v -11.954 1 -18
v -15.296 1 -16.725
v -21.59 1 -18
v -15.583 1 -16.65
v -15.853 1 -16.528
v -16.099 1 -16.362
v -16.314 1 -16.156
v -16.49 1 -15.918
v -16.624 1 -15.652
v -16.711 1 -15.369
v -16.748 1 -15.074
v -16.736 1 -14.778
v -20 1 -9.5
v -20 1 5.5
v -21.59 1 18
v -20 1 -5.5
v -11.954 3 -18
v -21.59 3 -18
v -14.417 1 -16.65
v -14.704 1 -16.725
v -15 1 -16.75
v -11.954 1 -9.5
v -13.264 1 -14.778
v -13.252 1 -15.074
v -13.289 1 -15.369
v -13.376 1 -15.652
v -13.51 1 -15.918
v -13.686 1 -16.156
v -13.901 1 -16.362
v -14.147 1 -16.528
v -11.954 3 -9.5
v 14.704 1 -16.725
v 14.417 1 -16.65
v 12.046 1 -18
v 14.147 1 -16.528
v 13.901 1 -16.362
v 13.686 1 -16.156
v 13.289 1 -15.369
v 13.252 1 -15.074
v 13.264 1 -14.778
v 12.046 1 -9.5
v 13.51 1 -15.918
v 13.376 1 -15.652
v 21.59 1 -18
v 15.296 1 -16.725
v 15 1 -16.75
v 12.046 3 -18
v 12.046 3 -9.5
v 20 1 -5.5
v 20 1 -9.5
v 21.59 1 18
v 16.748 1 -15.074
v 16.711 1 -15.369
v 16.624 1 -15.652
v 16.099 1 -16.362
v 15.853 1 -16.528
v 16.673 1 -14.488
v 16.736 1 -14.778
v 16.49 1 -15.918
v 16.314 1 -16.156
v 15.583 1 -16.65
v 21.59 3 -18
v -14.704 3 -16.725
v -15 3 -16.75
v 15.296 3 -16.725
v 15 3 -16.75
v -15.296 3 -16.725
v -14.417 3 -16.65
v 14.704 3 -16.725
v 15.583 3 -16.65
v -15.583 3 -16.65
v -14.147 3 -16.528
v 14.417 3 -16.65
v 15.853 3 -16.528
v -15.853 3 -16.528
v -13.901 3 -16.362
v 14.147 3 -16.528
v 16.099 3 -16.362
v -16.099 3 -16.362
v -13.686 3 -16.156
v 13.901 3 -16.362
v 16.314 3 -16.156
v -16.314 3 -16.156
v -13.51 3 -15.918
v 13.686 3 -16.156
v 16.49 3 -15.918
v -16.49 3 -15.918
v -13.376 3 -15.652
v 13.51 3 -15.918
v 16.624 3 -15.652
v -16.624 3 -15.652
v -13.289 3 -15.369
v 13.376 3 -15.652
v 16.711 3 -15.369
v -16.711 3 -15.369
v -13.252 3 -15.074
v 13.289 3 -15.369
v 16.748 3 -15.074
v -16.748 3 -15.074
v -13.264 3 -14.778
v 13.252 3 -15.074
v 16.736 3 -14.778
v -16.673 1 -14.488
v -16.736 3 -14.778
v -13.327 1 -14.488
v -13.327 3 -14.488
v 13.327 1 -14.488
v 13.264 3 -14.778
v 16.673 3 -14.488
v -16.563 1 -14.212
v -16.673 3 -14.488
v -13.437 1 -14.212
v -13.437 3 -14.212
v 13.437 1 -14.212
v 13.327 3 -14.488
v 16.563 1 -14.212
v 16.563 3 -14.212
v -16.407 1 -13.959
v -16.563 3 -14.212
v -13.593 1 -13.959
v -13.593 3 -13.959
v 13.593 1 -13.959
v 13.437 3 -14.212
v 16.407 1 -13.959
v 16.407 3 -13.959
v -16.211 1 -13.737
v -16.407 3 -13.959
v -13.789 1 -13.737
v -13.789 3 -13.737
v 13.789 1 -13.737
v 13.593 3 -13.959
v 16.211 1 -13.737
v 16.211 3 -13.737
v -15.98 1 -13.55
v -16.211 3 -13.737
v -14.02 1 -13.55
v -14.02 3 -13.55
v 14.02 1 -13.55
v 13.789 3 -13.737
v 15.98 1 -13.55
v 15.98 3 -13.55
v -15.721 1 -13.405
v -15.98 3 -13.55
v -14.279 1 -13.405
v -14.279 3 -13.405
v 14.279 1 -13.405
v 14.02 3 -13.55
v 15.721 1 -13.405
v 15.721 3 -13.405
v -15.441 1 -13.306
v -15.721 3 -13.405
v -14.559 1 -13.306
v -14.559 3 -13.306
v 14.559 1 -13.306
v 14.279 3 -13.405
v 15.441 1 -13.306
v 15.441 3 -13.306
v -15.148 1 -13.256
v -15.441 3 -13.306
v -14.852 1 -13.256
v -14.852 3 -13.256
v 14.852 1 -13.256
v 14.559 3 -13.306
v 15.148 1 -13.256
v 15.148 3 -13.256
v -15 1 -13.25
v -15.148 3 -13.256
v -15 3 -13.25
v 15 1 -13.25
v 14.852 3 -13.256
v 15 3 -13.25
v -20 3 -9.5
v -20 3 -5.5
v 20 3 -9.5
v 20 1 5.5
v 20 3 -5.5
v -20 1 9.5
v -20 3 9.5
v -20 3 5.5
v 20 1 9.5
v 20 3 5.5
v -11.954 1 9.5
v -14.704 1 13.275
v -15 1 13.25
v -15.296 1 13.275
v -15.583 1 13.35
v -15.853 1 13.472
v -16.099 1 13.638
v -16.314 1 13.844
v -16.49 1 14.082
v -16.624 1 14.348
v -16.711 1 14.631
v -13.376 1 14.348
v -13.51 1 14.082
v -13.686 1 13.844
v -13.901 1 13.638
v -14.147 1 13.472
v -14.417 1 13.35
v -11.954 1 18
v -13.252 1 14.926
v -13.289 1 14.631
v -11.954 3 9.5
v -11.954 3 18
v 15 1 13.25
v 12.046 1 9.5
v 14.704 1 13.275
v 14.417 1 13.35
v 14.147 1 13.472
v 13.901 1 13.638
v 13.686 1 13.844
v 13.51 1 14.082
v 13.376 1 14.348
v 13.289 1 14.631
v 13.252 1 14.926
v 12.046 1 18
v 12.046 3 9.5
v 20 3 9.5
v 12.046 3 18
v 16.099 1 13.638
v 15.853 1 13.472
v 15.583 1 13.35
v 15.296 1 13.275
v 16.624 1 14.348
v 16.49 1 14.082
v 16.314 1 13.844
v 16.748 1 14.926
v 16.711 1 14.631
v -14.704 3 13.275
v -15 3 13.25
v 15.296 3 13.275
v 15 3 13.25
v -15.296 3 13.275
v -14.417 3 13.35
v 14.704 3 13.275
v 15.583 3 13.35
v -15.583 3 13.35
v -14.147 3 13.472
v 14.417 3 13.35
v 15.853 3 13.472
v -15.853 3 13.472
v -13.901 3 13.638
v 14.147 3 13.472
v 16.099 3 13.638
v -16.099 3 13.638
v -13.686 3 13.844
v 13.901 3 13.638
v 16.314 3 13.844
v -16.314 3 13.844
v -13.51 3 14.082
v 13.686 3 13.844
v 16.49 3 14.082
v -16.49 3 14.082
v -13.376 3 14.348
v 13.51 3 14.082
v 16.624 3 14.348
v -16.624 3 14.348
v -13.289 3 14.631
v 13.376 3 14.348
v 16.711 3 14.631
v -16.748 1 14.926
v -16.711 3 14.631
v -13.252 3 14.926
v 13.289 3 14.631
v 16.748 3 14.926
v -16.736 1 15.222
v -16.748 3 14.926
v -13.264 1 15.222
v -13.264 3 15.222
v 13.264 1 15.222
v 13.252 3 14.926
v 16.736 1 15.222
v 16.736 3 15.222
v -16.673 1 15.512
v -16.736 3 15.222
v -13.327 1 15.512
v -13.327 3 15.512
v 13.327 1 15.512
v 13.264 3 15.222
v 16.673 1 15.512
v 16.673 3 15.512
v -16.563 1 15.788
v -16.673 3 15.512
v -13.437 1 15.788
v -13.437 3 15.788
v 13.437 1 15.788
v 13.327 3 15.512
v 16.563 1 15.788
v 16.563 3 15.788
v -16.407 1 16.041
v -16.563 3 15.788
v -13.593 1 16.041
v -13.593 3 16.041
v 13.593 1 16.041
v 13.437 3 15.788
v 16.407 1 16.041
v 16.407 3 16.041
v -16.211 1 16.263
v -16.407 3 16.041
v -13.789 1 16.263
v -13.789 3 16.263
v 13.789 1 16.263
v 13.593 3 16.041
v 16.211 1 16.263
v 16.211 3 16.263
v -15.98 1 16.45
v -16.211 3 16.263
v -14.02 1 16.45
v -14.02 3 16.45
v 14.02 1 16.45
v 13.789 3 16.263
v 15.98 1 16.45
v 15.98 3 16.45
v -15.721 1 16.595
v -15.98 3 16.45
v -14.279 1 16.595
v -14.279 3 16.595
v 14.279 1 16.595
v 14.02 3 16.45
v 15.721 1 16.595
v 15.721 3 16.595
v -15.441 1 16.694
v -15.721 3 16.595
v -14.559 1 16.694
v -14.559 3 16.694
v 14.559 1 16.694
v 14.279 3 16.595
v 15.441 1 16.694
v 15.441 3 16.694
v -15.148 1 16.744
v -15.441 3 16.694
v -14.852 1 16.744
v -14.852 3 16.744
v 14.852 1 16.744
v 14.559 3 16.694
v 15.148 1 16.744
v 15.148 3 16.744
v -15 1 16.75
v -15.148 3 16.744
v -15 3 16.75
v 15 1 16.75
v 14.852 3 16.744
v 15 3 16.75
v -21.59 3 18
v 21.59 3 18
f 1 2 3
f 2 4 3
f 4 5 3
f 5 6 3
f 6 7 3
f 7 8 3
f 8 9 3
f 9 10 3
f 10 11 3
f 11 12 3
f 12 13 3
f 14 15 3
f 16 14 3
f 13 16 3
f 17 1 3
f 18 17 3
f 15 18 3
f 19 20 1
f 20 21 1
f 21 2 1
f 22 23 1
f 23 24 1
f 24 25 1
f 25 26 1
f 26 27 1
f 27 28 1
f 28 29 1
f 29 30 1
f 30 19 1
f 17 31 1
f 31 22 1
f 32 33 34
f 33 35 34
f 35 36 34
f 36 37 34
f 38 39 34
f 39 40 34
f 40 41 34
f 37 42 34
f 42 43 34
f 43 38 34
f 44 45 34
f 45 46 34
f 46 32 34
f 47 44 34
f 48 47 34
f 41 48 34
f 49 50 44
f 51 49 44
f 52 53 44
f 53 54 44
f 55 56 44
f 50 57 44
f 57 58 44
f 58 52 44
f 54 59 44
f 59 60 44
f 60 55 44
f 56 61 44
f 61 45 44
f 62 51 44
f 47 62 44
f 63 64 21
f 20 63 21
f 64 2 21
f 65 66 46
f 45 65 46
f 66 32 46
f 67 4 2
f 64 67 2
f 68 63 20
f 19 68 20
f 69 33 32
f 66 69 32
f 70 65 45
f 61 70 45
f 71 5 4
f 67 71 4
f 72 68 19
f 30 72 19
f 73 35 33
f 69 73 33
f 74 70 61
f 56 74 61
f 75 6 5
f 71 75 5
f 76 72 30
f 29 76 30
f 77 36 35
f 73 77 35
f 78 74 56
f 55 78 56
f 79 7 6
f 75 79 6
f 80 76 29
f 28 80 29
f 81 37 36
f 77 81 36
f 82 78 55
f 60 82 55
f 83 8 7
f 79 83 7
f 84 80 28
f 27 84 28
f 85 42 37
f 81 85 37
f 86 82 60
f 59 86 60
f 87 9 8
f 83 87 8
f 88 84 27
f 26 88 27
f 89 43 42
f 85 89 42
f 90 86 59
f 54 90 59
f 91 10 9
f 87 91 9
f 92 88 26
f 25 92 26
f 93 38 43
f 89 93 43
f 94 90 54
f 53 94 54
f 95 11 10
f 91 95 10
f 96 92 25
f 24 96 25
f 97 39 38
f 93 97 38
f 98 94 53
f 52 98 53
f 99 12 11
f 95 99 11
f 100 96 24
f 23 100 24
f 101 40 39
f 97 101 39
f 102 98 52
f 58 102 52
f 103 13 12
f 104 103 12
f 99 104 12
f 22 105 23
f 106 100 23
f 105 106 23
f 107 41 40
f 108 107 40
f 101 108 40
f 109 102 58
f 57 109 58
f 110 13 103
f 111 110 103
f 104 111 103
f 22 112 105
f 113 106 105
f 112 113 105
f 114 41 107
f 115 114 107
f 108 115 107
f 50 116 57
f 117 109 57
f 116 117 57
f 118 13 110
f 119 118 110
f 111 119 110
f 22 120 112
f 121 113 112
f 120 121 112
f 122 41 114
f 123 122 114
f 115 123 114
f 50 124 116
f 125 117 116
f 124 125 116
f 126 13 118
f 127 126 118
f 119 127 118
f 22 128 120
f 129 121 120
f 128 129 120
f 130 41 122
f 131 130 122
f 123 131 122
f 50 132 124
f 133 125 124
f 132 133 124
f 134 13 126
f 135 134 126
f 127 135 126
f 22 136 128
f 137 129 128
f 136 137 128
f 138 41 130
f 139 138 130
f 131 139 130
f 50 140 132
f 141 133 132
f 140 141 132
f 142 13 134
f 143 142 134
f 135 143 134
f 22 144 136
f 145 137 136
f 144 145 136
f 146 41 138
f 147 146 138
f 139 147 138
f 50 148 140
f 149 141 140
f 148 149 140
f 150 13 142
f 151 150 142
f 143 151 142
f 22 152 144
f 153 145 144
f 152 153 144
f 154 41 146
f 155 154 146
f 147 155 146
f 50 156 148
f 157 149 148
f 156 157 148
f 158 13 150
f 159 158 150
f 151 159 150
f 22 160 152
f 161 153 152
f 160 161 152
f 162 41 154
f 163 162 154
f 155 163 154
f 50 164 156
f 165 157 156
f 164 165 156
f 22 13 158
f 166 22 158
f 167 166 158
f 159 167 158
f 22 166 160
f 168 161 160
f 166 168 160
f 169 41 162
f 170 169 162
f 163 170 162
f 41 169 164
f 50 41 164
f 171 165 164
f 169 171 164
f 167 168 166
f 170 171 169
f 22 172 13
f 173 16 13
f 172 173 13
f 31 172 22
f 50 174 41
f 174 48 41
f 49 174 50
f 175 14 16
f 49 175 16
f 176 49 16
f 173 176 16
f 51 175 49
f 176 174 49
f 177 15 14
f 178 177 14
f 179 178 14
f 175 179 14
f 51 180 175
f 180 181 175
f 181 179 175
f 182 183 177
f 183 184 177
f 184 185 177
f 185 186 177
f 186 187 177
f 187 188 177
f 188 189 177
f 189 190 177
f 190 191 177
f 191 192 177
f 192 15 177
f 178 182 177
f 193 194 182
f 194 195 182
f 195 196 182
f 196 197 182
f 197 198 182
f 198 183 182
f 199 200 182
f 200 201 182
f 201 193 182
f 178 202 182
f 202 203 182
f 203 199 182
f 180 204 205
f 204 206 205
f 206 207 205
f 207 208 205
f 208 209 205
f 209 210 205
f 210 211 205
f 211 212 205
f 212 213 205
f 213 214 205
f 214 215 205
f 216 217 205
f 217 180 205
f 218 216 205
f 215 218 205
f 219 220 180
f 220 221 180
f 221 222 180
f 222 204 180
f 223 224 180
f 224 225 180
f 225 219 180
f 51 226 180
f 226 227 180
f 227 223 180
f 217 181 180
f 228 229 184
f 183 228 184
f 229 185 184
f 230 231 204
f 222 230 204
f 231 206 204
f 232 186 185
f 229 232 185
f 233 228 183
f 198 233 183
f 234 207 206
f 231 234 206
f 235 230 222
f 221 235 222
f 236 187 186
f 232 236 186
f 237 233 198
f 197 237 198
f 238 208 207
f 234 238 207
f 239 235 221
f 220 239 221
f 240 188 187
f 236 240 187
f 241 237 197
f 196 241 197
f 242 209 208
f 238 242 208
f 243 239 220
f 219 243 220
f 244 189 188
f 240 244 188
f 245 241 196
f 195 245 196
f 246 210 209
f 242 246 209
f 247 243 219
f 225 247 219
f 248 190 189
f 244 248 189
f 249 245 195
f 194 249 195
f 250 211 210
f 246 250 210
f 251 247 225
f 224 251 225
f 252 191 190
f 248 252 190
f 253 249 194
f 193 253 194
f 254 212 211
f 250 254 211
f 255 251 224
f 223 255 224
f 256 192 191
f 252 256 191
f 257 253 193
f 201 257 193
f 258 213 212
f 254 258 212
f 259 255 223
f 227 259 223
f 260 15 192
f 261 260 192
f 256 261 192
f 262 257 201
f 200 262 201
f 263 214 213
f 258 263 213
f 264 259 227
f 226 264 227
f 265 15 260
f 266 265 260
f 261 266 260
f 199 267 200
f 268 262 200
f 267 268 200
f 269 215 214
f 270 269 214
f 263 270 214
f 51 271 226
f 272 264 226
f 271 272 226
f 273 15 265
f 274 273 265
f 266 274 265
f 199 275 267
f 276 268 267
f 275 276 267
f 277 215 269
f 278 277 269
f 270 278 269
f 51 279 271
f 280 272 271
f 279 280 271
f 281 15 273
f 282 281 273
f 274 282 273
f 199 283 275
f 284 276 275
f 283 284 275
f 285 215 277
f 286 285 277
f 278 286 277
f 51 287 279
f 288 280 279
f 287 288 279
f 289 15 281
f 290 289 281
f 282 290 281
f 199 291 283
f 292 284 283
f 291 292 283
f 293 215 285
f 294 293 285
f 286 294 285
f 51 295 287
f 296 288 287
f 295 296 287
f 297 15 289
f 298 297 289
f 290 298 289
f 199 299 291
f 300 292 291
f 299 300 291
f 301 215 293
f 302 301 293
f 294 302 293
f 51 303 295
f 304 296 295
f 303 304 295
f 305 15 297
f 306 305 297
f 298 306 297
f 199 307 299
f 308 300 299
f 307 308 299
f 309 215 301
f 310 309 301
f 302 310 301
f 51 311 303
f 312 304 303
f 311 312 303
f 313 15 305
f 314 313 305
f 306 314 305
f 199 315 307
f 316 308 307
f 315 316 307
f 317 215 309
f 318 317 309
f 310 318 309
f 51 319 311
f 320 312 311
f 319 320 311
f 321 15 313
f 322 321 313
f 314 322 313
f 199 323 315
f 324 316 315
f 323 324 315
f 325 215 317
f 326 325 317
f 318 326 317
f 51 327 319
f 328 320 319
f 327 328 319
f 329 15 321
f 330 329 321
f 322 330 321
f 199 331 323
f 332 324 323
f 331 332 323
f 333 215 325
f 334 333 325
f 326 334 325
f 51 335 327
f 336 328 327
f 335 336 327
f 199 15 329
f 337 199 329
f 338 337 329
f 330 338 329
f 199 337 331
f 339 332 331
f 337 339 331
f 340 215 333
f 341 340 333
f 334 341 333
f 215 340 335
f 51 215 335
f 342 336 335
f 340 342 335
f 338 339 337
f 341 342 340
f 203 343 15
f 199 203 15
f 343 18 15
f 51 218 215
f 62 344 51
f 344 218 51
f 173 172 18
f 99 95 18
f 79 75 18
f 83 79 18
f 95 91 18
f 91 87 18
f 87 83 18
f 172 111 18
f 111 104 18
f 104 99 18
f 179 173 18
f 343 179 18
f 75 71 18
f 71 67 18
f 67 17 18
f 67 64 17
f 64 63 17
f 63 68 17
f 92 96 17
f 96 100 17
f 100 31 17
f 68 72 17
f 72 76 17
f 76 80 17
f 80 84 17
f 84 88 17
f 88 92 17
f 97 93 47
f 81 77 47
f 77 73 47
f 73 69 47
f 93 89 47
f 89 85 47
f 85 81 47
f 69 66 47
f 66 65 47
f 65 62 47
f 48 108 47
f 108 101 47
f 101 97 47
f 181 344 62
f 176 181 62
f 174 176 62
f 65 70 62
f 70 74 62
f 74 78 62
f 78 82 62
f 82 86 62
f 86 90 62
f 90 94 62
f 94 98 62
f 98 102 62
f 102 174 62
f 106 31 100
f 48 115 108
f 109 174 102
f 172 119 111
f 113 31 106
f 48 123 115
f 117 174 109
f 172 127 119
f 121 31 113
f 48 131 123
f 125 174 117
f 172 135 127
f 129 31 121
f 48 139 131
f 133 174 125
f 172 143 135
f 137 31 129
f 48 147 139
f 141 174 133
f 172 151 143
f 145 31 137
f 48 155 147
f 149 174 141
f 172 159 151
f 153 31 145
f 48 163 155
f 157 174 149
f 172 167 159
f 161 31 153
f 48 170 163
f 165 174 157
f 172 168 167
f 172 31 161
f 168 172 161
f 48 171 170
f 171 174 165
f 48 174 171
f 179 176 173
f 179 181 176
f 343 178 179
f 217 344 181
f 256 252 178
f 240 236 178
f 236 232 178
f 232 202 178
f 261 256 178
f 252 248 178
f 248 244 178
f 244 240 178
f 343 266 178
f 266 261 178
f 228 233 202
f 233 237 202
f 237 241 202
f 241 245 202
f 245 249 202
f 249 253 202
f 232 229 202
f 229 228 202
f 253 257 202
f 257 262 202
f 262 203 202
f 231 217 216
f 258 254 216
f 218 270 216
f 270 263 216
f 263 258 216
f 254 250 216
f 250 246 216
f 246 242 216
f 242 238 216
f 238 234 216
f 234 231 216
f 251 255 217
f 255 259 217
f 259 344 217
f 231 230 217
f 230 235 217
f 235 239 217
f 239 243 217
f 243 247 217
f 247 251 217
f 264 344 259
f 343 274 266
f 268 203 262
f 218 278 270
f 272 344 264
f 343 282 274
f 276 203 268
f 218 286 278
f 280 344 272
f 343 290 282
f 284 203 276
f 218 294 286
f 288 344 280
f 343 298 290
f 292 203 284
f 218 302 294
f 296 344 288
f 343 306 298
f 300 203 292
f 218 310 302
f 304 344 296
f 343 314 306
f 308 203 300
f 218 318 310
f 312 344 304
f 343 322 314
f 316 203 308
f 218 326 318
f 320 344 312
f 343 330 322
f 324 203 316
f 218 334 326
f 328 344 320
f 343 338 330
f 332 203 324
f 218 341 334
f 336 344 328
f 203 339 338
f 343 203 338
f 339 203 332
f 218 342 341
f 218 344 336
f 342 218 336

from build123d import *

# Parameters (mm, degrees)
SKETCH1_R           = 1.75
BOSS_EXTRUDE3_DEPTH = 3
SKETCH4_W           = 38.009499712
SKETCH4_H           = 2.5
CUT_EXTRUDE7_DEPTH  = 29.268853886
SKETCH7_W           = 36
SKETCH7_H           = 1
CUT_EXTRUDE8_DEPTH  = 47.877632193
SKETCH9_W           = 39.982004405
SKETCH9_H           = 3.901650926
SKETCH9_W_2         = 38.509499712
SKETCH9_H_2         = 2.8
SKETCH9_W_3         = 37.982004405
SKETCH9_H_3         = 0.55
CUT_EXTRUDE9_DEPTH  = 10
SKETCH10_W          = 40
SKETCH10_H          = 4
SKETCH10_W_2        = 39.982004405
SKETCH10_H_2        = 3.901650926
CUT_EXTRUDE11_DEPTH = 29.180278565
SKETCH11_W          = 20
SKETCH11_H          = 3.116121774
CUT_EXTRUDE12_DEPTH = 10
SKETCH12_W          = 2
SKETCH12_H          = 8.5
CUT_EXTRUDE15_DEPTH = 10


with BuildPart() as part:
    # Sketch1 → Boss-Extrude3 (new body)
    # profile 1 of 2: a face of its own
    with BuildSketch(Plane(origin=(0, 0, 0), x_dir=(1, 0, 0), z_dir=(0, 1, 0))):
        Polygon((-21.59, 18), (-21.59, 0), (0, 0), (21.59, 0), (21.59, 18), (18.04585781, 18), (10.04585781, 18), (10.04585781, 12.616121774), (-9.95414219, 12.616121774), (-9.95414219, 18), (-17.95414219, 18), align=None)
        with Locations(Location((-15, 15, 0), (0, 0, 270))):
            Circle(SKETCH1_R, mode=Mode.SUBTRACT)
        Polygon((18.504745017, 6.25), (0, 6.25), (-18.5, 6.25), (-19.004539265, 6.25), (-19.004539265, 8.75), (-18.5, 8.75), (0.002372509, 8.75), (18.504745017, 8.75), (19.004960447, 8.75), (19.004960447, 6.25), align=None, mode=Mode.SUBTRACT)
        with Locations(Location((15, 15, 0), (0, 0, 270))):
            Circle(SKETCH1_R, mode=Mode.SUBTRACT)
    # profile 2 of 2: a face of its own
    with BuildSketch(Plane(origin=(0, 0, 0), x_dir=(1, 0, 0), z_dir=(0, 1, 0))):
        Polygon((0, 0), (-21.59, 0), (-21.59, -18), (-17.95414219, -18), (-9.95414219, -18), (-9.95414219, -12.616121774), (10.04585781, -12.616121774), (10.04585781, -18), (18.04585781, -18), (21.59, -18), (21.59, 0), align=None)
        with Locations(Location((-15, -15, 0), (0, 0, 270))):
            Circle(SKETCH1_R, mode=Mode.SUBTRACT)
        with Locations(Location((15, -15, 0), (0, 0, 270))):
            Circle(SKETCH1_R, mode=Mode.SUBTRACT)
        Polygon((18.504745017, -6.25), (19.004960447, -6.25), (19.004960447, -8.75), (18.504745017, -8.75), (-18.5, -8.75), (-19.004539265, -8.75), (-19.004539265, -6.25), (-18.5, -6.25), align=None, mode=Mode.SUBTRACT)
    extrude(amount=BOSS_EXTRUDE3_DEPTH)

    # Sketch4 → Cut-Extrude7 (cut, through all)
    # profile 1 of 3: a face of its own
    with BuildSketch(Plane(origin=(0, 3, 0), x_dir=(1, 0, 0), z_dir=(0, 1, 0))):
        Polygon((19.004960447, 6.1), (19.254960447, 6.1), (19.254960447, 8.882786661), (19.254960447, 8.9), (19.004960447, 8.9), (-19.004539265, 8.9), (-19.254539265, 8.9), (-19.254539265, 6.1), (-19.004539265, 6.1), align=None)
        with Locations((0.000210591, 7.5)):
            Rectangle(SKETCH4_W, SKETCH4_H, mode=Mode.SUBTRACT)
    # profile 2 of 3: a face of its own
    with BuildSketch(Plane(origin=(0, 3, 0), x_dir=(1, 0, 0), z_dir=(0, 1, 0))):
        with Locations((0.000210591, 7.5)):
            Rectangle(SKETCH4_W, SKETCH4_H)
    # profile 3 of 3: a face of its own
    with BuildSketch(Plane(origin=(0, 3, 0), x_dir=(1, 0, 0), z_dir=(0, 1, 0))):
        Polygon((-19.254539265, -6.1), (-19.254539265, -8.9), (-19.004539265, -8.9), (19.004960447, -8.9), (19.254960447, -8.9), (19.254960447, -6.1), (19.004960447, -6.1), (-19.004539265, -6.1), align=None)
        with Locations((0.000210591, -7.5)):
            Rectangle(SKETCH4_W, SKETCH4_H, mode=Mode.SUBTRACT)
    extrude(amount=-CUT_EXTRUDE7_DEPTH, mode=Mode.SUBTRACT)

    # Sketch7 → Cut-Extrude8 (cut, through all)
    with BuildSketch(Plane(origin=(21.59, 0, 0), x_dir=(0, 0, -1), z_dir=(1, 0, 0))):
        with Locations((0, 0.5)):
            Rectangle(SKETCH7_W, SKETCH7_H)
    extrude(amount=-CUT_EXTRUDE8_DEPTH, mode=Mode.SUBTRACT)

    # Sketch9 → Cut-Extrude9 (cut)
    # profile 1 of 4: a face of its own
    with BuildSketch(Plane(origin=(0, 3, 0), x_dir=(1, 0, 0), z_dir=(0, 1, 0))):
        with Locations((0.000210592, 7.5)):
            Rectangle(SKETCH9_W, SKETCH9_H)
        with Locations((0.000210591, 7.5)):
            Rectangle(SKETCH9_W_2, SKETCH9_H_2, mode=Mode.SUBTRACT)
    # profile 2 of 4: a face of its own
    with BuildSketch(Plane(origin=(0, 3, 0), x_dir=(1, 0, 0), z_dir=(0, 1, 0))):
        with Locations((0.000210592, -7.5)):
            Rectangle(SKETCH9_W, SKETCH9_H)
        Polygon((-19.254539265, -8.9), (-19.254539265, -6.1), (-18.990791611, -6.1), (-18.990791611, -5.55), (18.991212794, -5.55), (18.991212794, -6.1), (19.254960447, -6.1), (19.254960447, -8.9), (18.991212794, -8.9), (18.991212794, -9.45), (-18.990791611, -9.45), (-18.990791611, -8.9), align=None, mode=Mode.SUBTRACT)
    # profile 3 of 4: a face of its own
    with BuildSketch(Plane(origin=(0, 3, 0), x_dir=(1, 0, 0), z_dir=(0, 1, 0))):
        with Locations((0.000210592, -5.825)):
            Rectangle(SKETCH9_W_3, SKETCH9_H_3)
    # profile 4 of 4: a face of its own
    with BuildSketch(Plane(origin=(0, 3, 0), x_dir=(1, 0, 0), z_dir=(0, 1, 0))):
        with Locations((0.000210592, -9.175)):
            Rectangle(SKETCH9_W_3, SKETCH9_H_3)
    extrude(amount=-CUT_EXTRUDE9_DEPTH, mode=Mode.SUBTRACT)

    # Sketch10 → Cut-Extrude11 (cut, through all)
    # profile 1 of 3: a face of its own
    with BuildSketch(Plane(origin=(0, 3, 0), x_dir=(1, 0, 0), z_dir=(0, 1, 0))):
        with Locations((0.000210591, -7.5)):
            Rectangle(SKETCH10_W, SKETCH10_H)
        with Locations((0.000210592, -7.5)):
            Rectangle(SKETCH10_W_2, SKETCH10_H_2, mode=Mode.SUBTRACT)
    # profile 2 of 3: a face of its own
    with BuildSketch(Plane(origin=(0, 3, 0), x_dir=(1, 0, 0), z_dir=(0, 1, 0))):
        with Locations((0.000210591, 7.5)):
            Rectangle(SKETCH10_W, SKETCH10_H)
        with Locations((0.000210592, 7.5)):
            Rectangle(SKETCH10_W_2, SKETCH10_H_2, mode=Mode.SUBTRACT)
    # profile 3 of 3: a face of its own
    with BuildSketch(Plane(origin=(0, 3, 0), x_dir=(1, 0, 0), z_dir=(0, 1, 0))):
        with Locations((0.000210592, 7.5)):
            Rectangle(SKETCH10_W_2, SKETCH10_H_2)
    extrude(amount=-CUT_EXTRUDE11_DEPTH, mode=Mode.SUBTRACT)

    # Sketch11 → Cut-Extrude12 (cut)
    with BuildSketch(Plane(origin=(0, 3, 0), x_dir=(1, 0, 0), z_dir=(0, 1, 0))):
        with Locations((0.04585781, -11.058060887)):
            Rectangle(SKETCH11_W, SKETCH11_H)
        with Locations((0.04585781, 11.058060887)):
            Rectangle(SKETCH11_W, SKETCH11_H)
    extrude(amount=-CUT_EXTRUDE12_DEPTH, mode=Mode.SUBTRACT)

    # Sketch12 → Cut-Extrude15 (cut)
    with BuildSketch(Plane(origin=(0, 3, 0), x_dir=(1, 0, 0), z_dir=(0, 1, 0))):
        with Locations((-10.95414219, -13.75)):
            Rectangle(SKETCH12_W, SKETCH12_H)
        with Locations((-10.95414219, 13.75)):
            Rectangle(SKETCH12_W, SKETCH12_H)
        with Locations((11.04585781, 13.75)):
            Rectangle(SKETCH12_W, SKETCH12_H)
        Polygon((10.04585781, -9.65592739), (10.04585781, -18), (12.04585781, -18), (12.04585781, -9.65592739), (12.04585781, -9.5), (10.04585781, -9.5), align=None)
    extrude(amount=-CUT_EXTRUDE15_DEPTH, mode=Mode.SUBTRACT)


solid = part.part
